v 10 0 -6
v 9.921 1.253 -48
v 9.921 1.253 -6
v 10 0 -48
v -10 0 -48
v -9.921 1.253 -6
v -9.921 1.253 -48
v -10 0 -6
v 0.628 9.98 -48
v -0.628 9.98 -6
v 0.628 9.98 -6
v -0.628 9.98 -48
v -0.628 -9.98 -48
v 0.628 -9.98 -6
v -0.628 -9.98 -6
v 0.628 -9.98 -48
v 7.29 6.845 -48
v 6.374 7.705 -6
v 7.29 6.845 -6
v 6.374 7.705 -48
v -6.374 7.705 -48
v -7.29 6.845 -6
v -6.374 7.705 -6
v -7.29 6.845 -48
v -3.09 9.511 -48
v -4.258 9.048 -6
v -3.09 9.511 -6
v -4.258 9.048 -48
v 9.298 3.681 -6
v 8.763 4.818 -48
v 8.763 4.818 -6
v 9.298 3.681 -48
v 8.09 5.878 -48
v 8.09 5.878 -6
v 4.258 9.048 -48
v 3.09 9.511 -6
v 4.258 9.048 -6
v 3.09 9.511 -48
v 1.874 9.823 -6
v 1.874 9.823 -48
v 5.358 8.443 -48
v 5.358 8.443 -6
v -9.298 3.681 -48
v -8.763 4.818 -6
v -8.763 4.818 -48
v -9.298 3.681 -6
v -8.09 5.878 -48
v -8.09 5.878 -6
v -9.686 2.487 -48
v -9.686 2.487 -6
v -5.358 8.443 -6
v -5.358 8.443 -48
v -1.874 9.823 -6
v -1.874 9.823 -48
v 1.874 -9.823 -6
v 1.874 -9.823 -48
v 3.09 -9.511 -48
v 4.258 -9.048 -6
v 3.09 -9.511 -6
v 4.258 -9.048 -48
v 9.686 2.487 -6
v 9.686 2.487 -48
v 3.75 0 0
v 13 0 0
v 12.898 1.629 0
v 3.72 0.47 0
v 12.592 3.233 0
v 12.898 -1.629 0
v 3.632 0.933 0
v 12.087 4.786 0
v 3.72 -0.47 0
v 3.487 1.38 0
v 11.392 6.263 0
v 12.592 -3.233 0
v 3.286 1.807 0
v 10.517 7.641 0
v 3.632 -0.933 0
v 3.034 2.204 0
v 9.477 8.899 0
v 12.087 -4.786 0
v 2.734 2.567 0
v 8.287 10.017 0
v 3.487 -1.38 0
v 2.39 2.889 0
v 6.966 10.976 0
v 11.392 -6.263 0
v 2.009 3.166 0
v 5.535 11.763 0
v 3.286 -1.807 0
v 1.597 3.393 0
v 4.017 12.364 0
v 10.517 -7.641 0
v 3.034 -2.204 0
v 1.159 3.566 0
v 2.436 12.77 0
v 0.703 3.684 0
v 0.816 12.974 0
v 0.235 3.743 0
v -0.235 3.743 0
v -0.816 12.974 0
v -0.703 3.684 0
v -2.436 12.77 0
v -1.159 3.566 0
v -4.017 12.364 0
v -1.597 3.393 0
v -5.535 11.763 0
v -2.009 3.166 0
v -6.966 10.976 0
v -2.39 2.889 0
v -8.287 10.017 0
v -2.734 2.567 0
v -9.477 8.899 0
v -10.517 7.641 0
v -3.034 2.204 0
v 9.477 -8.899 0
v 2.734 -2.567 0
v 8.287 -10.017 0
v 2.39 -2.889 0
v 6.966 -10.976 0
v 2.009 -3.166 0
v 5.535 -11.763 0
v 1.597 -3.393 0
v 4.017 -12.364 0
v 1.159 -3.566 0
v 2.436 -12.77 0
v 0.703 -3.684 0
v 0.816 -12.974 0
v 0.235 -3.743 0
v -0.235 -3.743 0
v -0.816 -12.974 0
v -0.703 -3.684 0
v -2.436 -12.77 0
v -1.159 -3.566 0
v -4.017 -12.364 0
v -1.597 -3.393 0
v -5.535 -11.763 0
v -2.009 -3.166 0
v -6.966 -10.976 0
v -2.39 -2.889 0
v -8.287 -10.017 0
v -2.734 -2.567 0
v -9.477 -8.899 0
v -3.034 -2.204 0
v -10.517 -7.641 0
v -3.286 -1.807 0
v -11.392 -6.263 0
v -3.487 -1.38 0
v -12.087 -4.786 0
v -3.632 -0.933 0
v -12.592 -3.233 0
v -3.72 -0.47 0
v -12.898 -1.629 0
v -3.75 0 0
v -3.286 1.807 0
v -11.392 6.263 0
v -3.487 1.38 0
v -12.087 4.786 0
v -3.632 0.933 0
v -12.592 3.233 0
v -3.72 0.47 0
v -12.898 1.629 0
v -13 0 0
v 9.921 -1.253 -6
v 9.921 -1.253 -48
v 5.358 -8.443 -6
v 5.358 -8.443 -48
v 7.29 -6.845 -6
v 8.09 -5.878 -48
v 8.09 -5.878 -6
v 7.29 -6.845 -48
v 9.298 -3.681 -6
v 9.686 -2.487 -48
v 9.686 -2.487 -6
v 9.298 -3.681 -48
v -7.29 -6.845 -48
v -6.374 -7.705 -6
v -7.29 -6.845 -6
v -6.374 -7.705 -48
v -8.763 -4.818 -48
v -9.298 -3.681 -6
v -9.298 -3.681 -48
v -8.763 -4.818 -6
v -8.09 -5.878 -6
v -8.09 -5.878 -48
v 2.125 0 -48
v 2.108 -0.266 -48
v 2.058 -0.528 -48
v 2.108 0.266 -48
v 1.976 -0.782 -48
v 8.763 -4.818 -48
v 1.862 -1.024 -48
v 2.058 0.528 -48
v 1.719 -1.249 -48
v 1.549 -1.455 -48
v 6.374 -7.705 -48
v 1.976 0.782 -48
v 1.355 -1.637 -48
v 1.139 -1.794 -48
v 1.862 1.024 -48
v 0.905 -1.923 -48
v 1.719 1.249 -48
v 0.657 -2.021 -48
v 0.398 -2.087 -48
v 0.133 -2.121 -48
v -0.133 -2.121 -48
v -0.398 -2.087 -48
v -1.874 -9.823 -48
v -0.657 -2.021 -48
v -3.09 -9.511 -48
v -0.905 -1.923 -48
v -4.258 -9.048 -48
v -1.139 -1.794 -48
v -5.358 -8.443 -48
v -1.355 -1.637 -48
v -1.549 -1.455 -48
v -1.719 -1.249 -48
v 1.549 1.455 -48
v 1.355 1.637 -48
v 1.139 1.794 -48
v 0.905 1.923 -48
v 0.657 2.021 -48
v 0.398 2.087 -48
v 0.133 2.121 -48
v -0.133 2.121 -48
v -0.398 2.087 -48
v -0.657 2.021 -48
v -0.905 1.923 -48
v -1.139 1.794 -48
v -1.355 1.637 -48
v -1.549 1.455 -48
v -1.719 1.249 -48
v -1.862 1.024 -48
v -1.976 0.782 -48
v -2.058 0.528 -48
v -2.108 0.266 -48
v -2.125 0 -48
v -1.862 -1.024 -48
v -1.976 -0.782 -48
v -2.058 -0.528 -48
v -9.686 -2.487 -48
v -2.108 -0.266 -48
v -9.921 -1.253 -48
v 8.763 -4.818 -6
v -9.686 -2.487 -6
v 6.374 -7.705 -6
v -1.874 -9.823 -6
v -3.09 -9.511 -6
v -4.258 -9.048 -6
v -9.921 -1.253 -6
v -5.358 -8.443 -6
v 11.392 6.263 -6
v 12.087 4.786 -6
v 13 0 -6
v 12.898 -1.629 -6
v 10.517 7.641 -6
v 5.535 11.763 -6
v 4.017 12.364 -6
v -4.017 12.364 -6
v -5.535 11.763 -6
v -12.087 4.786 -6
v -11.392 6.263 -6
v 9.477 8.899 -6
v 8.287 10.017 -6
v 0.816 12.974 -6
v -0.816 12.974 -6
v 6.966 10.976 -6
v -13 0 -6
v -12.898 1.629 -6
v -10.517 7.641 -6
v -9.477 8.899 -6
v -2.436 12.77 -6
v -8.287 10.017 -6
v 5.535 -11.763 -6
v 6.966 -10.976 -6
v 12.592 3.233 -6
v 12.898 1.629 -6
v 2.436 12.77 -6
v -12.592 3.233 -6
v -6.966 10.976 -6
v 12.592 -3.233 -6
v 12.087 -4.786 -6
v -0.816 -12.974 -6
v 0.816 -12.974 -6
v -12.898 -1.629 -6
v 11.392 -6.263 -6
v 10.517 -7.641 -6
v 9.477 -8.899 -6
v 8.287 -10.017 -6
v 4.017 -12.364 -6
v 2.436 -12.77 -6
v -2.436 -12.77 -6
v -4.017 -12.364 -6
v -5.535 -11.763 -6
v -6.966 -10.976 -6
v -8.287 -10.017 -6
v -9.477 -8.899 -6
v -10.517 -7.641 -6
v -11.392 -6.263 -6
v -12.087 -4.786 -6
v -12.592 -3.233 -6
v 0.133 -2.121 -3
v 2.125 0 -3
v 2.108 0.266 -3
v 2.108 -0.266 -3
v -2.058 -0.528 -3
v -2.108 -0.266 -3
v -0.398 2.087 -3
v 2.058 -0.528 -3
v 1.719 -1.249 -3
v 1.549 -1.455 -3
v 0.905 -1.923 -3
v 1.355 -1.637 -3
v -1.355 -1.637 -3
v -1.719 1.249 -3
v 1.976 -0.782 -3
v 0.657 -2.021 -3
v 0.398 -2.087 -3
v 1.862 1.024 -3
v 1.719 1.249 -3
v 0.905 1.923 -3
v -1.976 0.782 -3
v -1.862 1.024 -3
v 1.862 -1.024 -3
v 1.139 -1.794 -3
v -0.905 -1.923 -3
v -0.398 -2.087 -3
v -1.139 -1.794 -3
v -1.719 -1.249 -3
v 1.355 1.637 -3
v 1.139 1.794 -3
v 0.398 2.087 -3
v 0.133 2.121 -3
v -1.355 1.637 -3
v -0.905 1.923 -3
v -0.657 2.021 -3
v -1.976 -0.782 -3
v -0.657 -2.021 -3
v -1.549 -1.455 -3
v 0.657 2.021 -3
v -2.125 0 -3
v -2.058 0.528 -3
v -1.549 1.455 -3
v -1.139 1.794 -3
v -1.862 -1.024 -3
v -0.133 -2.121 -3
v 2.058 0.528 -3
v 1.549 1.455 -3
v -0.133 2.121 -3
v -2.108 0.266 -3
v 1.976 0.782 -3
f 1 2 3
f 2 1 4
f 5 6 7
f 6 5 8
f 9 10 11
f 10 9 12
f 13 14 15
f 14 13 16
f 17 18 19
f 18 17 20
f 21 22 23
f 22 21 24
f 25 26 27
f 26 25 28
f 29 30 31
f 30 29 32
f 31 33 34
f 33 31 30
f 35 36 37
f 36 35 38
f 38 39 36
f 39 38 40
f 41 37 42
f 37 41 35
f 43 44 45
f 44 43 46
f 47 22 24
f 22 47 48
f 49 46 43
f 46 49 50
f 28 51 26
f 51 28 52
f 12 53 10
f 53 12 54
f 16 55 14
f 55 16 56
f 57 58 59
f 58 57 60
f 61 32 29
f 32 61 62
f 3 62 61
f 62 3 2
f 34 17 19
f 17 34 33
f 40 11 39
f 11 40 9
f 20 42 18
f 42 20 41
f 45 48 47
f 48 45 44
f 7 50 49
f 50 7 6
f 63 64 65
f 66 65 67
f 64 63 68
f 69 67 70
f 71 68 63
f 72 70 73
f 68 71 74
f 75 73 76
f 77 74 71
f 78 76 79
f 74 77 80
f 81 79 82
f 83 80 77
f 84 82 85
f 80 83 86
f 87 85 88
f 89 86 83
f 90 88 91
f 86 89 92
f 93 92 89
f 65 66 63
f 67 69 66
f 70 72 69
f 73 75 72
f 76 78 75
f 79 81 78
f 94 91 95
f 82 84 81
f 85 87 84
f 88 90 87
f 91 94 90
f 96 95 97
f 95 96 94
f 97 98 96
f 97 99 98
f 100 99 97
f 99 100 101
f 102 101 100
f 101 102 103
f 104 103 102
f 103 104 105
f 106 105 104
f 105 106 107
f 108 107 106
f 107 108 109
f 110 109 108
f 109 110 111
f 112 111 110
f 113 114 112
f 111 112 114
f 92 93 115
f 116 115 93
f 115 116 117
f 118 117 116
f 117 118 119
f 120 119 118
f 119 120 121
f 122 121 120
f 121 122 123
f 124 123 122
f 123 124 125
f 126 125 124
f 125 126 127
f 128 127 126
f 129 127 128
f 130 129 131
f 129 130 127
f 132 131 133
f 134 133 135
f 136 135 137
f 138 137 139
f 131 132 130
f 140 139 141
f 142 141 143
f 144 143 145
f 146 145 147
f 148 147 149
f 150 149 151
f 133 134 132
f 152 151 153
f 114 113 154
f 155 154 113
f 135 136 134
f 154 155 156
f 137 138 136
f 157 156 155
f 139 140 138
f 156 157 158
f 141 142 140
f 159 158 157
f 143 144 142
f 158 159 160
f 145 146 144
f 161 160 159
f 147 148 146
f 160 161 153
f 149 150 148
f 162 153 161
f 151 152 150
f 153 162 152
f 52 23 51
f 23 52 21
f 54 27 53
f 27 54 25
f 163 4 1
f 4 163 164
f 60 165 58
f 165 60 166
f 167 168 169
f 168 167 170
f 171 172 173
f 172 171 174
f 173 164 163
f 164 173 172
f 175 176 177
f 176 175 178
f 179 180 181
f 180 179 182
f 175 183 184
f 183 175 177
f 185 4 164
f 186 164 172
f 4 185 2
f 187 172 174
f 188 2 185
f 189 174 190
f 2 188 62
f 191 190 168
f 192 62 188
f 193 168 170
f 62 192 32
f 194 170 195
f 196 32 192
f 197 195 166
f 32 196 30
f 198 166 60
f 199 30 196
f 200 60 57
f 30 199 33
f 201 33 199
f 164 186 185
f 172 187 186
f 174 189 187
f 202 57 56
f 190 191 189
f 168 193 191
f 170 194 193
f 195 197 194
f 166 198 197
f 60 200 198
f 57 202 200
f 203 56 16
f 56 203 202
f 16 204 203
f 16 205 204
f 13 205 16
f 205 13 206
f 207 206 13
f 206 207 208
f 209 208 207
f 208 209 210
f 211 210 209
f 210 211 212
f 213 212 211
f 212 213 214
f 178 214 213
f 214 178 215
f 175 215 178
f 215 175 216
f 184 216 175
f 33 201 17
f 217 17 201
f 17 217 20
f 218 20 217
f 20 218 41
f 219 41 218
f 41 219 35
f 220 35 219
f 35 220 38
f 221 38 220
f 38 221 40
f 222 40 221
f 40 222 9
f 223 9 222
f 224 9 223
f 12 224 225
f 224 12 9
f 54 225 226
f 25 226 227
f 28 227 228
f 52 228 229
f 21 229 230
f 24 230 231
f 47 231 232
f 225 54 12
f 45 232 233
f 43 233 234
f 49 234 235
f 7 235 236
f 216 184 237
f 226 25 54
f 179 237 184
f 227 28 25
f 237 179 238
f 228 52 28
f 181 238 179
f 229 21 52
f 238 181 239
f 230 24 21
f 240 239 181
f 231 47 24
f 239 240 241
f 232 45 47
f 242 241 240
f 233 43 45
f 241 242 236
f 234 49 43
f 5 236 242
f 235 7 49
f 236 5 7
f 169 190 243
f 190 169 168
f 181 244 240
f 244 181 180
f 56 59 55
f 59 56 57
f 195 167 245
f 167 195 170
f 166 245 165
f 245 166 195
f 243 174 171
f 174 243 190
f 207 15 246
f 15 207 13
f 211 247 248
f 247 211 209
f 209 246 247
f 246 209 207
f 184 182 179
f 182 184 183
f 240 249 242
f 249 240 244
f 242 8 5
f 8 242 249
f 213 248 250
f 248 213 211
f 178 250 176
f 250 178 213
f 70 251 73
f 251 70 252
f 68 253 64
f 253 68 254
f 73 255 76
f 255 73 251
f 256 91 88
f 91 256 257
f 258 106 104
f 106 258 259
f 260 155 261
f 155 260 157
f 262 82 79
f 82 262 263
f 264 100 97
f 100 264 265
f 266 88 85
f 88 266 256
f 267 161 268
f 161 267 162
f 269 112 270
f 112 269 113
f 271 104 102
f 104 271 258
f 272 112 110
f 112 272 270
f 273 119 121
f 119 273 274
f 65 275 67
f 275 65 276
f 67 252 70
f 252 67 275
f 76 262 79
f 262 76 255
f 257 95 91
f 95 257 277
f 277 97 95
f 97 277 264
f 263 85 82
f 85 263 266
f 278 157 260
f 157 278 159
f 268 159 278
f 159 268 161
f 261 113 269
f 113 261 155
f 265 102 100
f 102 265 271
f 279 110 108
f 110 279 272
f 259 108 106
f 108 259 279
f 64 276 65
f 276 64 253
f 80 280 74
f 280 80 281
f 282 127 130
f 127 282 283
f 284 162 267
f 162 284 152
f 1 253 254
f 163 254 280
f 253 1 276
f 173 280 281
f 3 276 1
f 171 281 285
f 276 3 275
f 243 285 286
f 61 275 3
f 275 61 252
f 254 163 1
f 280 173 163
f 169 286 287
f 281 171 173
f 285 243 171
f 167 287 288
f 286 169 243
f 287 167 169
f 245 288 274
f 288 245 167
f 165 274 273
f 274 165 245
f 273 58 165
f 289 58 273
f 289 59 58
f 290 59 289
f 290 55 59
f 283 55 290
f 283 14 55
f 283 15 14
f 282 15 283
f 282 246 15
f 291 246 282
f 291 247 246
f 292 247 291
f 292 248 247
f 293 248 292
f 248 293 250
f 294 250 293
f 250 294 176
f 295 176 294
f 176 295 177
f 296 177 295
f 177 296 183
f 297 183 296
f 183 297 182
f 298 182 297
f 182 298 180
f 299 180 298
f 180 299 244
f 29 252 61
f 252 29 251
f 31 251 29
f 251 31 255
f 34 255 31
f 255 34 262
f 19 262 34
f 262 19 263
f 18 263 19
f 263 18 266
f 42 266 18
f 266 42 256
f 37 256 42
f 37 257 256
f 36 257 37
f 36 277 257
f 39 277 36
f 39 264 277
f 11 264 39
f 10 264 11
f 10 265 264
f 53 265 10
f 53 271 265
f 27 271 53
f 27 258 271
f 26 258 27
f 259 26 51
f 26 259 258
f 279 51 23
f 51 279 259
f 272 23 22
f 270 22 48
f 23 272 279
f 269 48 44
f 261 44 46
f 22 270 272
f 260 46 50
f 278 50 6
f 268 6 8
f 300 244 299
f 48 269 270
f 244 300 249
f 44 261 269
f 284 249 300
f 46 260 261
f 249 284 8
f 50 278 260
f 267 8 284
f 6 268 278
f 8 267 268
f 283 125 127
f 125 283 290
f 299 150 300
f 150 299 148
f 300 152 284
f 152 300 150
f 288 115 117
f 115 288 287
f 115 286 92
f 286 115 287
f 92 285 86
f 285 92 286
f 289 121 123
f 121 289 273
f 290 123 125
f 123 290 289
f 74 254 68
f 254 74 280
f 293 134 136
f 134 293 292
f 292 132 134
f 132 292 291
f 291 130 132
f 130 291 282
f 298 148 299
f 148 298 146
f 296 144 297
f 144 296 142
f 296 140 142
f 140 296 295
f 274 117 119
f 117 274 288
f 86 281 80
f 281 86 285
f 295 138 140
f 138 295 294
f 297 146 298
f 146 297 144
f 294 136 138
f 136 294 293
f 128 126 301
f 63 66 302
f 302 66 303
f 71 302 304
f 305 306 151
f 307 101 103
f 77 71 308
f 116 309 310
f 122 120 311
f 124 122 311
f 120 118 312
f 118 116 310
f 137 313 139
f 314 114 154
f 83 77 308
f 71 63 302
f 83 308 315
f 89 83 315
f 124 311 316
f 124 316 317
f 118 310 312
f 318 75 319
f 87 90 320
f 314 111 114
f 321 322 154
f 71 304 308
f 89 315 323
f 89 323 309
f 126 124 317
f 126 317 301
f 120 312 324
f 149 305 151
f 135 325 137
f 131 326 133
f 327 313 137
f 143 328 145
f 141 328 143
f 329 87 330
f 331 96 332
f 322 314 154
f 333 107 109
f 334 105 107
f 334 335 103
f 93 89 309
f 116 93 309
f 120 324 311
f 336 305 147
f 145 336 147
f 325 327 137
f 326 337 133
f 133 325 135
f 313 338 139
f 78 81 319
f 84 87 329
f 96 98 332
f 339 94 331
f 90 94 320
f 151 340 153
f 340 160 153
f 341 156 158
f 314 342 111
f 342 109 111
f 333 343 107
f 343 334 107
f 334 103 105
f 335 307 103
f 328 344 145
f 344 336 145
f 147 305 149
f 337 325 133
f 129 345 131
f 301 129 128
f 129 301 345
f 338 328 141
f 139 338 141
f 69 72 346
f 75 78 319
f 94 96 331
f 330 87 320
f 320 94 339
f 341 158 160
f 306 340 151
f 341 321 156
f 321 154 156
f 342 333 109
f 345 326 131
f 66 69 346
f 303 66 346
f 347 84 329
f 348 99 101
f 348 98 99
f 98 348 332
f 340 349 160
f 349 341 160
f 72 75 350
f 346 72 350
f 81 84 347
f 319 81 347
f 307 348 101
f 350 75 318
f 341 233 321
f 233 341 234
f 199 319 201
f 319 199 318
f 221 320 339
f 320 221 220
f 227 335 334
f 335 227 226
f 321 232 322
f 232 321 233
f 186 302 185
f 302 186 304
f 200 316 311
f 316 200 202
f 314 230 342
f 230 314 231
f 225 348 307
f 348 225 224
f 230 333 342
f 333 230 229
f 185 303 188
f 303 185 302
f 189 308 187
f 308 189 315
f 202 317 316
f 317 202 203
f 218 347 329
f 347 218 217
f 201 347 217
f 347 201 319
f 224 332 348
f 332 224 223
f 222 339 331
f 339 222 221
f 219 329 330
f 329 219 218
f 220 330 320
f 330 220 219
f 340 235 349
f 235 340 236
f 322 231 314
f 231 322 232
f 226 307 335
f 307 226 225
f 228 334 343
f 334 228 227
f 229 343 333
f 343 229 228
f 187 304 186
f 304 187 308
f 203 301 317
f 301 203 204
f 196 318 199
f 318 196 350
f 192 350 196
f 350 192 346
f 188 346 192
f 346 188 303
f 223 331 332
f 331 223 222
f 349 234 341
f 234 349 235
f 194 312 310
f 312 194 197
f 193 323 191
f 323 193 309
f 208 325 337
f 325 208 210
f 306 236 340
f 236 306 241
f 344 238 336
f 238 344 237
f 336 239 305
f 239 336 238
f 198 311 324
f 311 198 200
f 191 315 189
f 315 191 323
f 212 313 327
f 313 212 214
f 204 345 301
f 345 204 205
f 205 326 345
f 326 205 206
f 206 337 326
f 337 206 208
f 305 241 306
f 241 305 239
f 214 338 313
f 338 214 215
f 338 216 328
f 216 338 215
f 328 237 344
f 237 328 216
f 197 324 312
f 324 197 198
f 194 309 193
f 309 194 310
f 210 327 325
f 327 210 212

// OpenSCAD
$fn = 50;


difference() {
	union() {
		translate(v = [0, 0, -48.0000000000]) {
			cylinder(h = 48, r = 10.0000000000);
		}
		translate(v = [0, 0, -6.0000000000]) {
			cylinder(h = 6, r = 13.0000000000);
		}
	}
	union() {
		translate(v = [0, 0, 0]) {
			rotate(a = [0, 0, 0]) {
				difference() {
					union() {
						#translate(v = [0, 0, -48.0000000000]) {
							cylinder(h = 48, r = 2.0000000000);
						}
						#translate(v = [0, 0, -3]) {
							cylinder(h = 3, r1 = 2.1250000000, r2 = 3.7500000000);
						}
						#translate(v = [0, 0, -48.0000000000]) {
							cylinder(h = 48, r = 2.1250000000);
						}
						#translate(v = [0, 0, -48.0000000000]) {
							cylinder(h = 48, r = 2.0000000000);
						}
					}
					union();
				}
			}
		}
	}
}
